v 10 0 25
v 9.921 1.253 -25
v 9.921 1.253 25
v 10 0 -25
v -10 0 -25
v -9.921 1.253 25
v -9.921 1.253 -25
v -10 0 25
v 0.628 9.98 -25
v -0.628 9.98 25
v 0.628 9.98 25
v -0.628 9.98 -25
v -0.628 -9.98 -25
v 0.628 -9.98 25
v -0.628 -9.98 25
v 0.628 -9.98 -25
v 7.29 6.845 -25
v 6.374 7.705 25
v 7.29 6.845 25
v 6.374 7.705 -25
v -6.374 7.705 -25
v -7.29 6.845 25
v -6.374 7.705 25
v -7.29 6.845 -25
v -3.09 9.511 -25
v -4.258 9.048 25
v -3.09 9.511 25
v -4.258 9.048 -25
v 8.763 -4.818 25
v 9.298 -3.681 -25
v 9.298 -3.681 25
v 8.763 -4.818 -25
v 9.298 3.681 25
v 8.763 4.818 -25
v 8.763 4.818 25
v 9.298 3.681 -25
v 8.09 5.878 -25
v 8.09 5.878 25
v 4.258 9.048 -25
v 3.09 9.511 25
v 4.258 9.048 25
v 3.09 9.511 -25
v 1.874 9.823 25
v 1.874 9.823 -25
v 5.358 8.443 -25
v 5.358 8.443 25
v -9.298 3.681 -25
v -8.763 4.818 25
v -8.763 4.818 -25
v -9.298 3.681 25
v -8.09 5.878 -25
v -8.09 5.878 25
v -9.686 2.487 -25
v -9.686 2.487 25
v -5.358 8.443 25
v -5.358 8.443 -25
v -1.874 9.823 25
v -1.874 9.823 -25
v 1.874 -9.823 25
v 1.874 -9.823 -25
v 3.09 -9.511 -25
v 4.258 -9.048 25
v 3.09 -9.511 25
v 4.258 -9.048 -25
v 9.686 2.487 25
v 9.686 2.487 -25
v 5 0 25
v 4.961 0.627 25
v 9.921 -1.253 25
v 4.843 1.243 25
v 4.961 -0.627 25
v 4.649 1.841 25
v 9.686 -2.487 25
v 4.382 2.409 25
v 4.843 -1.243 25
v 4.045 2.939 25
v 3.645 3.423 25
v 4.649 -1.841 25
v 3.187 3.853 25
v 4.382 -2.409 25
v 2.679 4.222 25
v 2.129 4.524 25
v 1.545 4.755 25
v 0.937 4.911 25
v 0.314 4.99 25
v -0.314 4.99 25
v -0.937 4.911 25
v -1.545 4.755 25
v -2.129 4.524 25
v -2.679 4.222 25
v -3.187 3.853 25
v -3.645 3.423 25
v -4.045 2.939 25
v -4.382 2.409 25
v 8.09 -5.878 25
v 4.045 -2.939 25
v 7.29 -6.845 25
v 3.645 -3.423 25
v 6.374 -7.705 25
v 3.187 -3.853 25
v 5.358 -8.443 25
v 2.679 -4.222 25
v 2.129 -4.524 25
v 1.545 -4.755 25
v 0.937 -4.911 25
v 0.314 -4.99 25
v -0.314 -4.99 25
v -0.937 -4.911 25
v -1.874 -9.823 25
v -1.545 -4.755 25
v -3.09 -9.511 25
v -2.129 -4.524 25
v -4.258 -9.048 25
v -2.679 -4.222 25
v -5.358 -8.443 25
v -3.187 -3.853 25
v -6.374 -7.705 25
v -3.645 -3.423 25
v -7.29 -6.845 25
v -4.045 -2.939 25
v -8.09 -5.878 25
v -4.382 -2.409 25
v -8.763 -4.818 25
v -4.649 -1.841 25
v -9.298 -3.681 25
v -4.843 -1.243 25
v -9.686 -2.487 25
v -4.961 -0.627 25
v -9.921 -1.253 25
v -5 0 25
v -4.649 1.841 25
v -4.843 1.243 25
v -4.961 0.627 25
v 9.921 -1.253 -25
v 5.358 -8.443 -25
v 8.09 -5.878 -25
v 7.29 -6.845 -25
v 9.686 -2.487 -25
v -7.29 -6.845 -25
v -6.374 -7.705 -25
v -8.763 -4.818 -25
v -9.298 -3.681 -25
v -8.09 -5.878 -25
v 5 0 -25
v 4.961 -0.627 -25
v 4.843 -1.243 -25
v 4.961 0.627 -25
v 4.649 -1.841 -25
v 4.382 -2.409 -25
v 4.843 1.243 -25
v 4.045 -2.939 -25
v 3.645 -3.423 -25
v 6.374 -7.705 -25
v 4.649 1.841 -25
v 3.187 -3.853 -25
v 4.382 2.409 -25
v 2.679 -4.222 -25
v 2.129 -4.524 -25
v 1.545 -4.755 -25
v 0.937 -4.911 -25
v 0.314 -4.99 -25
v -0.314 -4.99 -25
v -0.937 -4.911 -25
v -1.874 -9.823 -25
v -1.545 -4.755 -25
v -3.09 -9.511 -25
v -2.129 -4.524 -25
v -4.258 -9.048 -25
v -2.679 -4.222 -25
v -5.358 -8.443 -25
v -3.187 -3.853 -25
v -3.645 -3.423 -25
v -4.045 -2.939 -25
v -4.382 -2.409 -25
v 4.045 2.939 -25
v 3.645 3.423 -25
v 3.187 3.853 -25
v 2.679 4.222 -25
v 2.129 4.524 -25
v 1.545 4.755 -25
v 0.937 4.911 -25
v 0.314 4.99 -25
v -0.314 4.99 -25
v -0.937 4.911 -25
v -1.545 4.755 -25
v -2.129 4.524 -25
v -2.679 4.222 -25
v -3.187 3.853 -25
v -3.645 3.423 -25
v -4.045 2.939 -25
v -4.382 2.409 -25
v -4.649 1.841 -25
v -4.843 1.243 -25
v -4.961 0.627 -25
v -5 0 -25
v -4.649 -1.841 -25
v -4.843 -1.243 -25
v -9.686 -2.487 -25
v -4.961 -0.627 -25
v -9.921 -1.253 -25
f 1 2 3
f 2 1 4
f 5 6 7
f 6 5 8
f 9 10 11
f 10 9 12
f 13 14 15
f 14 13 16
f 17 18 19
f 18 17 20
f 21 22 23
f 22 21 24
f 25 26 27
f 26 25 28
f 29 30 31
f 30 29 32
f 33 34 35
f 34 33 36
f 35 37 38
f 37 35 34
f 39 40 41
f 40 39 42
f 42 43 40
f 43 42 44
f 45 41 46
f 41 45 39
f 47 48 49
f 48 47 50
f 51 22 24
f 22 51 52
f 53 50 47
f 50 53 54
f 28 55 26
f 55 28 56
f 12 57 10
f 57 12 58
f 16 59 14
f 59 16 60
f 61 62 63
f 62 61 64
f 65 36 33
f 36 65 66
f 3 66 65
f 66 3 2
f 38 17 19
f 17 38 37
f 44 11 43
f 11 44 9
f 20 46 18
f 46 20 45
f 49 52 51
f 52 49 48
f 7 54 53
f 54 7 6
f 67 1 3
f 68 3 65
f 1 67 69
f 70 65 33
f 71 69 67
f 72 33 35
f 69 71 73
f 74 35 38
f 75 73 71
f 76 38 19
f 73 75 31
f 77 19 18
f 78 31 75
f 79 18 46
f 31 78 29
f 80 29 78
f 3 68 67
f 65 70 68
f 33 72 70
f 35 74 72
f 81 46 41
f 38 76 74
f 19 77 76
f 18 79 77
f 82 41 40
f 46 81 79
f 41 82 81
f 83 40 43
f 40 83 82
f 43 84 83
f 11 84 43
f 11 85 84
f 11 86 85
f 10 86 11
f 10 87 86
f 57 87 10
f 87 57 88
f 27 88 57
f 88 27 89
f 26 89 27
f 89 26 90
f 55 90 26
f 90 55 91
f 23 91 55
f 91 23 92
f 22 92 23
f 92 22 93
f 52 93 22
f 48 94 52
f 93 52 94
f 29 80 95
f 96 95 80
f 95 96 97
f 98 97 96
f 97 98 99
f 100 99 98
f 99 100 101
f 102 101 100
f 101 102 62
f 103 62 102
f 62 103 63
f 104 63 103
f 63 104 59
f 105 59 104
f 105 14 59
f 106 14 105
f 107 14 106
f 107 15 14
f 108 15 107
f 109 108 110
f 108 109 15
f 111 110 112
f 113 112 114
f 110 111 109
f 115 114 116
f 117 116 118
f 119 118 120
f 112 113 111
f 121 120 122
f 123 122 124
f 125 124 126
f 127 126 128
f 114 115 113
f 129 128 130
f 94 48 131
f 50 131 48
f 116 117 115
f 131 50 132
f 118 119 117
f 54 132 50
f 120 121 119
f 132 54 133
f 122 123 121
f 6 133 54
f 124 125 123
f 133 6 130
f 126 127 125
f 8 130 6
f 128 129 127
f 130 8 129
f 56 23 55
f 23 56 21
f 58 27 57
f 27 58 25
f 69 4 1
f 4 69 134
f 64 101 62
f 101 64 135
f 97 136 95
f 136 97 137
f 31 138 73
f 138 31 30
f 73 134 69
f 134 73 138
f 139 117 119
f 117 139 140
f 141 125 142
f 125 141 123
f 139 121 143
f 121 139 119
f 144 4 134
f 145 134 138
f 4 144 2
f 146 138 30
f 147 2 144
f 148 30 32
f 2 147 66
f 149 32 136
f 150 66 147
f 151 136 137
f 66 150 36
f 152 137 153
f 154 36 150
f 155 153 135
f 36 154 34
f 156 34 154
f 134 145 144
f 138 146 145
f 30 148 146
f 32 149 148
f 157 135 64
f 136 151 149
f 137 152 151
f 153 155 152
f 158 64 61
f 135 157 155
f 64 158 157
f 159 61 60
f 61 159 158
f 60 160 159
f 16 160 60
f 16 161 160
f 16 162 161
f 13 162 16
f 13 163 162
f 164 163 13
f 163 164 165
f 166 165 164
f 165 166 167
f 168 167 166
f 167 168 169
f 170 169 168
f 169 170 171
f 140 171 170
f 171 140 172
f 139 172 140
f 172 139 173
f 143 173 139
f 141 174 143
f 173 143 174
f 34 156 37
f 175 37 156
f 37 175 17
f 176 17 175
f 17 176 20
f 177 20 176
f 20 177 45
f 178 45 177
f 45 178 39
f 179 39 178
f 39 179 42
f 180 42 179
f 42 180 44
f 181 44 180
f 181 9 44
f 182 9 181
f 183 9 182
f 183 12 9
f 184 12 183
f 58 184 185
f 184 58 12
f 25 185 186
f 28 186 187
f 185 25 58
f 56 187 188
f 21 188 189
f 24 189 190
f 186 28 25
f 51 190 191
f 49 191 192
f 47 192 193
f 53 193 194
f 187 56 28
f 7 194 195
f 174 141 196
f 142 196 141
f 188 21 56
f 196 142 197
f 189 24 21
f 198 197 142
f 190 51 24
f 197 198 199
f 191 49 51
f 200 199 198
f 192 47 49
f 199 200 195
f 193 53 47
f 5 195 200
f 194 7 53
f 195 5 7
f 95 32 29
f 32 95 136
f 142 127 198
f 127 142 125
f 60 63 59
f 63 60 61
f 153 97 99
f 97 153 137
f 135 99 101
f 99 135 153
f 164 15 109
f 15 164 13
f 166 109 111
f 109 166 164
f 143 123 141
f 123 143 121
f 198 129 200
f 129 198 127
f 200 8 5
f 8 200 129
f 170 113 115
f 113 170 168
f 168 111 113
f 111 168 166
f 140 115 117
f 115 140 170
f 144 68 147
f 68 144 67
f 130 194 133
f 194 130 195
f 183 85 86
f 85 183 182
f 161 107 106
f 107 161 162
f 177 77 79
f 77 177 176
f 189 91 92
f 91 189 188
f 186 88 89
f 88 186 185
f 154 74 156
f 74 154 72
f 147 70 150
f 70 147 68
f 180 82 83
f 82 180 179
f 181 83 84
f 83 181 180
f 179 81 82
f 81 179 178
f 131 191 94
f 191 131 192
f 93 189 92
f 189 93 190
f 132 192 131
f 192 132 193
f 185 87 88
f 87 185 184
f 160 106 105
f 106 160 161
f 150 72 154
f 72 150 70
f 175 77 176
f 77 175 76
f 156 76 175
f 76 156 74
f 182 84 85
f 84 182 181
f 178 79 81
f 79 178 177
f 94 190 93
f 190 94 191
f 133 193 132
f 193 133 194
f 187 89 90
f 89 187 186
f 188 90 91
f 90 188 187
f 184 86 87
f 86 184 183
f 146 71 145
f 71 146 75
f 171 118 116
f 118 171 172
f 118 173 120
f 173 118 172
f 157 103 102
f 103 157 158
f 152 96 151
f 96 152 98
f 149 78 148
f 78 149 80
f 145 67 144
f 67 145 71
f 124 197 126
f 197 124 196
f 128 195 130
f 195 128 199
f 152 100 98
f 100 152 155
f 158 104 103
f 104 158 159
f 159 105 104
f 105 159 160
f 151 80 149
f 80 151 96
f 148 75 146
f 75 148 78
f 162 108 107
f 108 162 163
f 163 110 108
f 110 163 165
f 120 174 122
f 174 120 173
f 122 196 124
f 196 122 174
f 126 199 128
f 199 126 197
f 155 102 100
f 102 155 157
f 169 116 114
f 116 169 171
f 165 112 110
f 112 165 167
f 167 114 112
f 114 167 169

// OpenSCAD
$fn = 50;


difference() {
	union() {
		translate(v = [0, 0, -25.0000000000]) {
			cylinder(h = 50, r = 10.0000000000);
		}
	}
	union() {
		translate(v = [0, 0, -100.0000000000]) {
			cylinder(h = 200, r = 5.0000000000);
		}
	}
}
